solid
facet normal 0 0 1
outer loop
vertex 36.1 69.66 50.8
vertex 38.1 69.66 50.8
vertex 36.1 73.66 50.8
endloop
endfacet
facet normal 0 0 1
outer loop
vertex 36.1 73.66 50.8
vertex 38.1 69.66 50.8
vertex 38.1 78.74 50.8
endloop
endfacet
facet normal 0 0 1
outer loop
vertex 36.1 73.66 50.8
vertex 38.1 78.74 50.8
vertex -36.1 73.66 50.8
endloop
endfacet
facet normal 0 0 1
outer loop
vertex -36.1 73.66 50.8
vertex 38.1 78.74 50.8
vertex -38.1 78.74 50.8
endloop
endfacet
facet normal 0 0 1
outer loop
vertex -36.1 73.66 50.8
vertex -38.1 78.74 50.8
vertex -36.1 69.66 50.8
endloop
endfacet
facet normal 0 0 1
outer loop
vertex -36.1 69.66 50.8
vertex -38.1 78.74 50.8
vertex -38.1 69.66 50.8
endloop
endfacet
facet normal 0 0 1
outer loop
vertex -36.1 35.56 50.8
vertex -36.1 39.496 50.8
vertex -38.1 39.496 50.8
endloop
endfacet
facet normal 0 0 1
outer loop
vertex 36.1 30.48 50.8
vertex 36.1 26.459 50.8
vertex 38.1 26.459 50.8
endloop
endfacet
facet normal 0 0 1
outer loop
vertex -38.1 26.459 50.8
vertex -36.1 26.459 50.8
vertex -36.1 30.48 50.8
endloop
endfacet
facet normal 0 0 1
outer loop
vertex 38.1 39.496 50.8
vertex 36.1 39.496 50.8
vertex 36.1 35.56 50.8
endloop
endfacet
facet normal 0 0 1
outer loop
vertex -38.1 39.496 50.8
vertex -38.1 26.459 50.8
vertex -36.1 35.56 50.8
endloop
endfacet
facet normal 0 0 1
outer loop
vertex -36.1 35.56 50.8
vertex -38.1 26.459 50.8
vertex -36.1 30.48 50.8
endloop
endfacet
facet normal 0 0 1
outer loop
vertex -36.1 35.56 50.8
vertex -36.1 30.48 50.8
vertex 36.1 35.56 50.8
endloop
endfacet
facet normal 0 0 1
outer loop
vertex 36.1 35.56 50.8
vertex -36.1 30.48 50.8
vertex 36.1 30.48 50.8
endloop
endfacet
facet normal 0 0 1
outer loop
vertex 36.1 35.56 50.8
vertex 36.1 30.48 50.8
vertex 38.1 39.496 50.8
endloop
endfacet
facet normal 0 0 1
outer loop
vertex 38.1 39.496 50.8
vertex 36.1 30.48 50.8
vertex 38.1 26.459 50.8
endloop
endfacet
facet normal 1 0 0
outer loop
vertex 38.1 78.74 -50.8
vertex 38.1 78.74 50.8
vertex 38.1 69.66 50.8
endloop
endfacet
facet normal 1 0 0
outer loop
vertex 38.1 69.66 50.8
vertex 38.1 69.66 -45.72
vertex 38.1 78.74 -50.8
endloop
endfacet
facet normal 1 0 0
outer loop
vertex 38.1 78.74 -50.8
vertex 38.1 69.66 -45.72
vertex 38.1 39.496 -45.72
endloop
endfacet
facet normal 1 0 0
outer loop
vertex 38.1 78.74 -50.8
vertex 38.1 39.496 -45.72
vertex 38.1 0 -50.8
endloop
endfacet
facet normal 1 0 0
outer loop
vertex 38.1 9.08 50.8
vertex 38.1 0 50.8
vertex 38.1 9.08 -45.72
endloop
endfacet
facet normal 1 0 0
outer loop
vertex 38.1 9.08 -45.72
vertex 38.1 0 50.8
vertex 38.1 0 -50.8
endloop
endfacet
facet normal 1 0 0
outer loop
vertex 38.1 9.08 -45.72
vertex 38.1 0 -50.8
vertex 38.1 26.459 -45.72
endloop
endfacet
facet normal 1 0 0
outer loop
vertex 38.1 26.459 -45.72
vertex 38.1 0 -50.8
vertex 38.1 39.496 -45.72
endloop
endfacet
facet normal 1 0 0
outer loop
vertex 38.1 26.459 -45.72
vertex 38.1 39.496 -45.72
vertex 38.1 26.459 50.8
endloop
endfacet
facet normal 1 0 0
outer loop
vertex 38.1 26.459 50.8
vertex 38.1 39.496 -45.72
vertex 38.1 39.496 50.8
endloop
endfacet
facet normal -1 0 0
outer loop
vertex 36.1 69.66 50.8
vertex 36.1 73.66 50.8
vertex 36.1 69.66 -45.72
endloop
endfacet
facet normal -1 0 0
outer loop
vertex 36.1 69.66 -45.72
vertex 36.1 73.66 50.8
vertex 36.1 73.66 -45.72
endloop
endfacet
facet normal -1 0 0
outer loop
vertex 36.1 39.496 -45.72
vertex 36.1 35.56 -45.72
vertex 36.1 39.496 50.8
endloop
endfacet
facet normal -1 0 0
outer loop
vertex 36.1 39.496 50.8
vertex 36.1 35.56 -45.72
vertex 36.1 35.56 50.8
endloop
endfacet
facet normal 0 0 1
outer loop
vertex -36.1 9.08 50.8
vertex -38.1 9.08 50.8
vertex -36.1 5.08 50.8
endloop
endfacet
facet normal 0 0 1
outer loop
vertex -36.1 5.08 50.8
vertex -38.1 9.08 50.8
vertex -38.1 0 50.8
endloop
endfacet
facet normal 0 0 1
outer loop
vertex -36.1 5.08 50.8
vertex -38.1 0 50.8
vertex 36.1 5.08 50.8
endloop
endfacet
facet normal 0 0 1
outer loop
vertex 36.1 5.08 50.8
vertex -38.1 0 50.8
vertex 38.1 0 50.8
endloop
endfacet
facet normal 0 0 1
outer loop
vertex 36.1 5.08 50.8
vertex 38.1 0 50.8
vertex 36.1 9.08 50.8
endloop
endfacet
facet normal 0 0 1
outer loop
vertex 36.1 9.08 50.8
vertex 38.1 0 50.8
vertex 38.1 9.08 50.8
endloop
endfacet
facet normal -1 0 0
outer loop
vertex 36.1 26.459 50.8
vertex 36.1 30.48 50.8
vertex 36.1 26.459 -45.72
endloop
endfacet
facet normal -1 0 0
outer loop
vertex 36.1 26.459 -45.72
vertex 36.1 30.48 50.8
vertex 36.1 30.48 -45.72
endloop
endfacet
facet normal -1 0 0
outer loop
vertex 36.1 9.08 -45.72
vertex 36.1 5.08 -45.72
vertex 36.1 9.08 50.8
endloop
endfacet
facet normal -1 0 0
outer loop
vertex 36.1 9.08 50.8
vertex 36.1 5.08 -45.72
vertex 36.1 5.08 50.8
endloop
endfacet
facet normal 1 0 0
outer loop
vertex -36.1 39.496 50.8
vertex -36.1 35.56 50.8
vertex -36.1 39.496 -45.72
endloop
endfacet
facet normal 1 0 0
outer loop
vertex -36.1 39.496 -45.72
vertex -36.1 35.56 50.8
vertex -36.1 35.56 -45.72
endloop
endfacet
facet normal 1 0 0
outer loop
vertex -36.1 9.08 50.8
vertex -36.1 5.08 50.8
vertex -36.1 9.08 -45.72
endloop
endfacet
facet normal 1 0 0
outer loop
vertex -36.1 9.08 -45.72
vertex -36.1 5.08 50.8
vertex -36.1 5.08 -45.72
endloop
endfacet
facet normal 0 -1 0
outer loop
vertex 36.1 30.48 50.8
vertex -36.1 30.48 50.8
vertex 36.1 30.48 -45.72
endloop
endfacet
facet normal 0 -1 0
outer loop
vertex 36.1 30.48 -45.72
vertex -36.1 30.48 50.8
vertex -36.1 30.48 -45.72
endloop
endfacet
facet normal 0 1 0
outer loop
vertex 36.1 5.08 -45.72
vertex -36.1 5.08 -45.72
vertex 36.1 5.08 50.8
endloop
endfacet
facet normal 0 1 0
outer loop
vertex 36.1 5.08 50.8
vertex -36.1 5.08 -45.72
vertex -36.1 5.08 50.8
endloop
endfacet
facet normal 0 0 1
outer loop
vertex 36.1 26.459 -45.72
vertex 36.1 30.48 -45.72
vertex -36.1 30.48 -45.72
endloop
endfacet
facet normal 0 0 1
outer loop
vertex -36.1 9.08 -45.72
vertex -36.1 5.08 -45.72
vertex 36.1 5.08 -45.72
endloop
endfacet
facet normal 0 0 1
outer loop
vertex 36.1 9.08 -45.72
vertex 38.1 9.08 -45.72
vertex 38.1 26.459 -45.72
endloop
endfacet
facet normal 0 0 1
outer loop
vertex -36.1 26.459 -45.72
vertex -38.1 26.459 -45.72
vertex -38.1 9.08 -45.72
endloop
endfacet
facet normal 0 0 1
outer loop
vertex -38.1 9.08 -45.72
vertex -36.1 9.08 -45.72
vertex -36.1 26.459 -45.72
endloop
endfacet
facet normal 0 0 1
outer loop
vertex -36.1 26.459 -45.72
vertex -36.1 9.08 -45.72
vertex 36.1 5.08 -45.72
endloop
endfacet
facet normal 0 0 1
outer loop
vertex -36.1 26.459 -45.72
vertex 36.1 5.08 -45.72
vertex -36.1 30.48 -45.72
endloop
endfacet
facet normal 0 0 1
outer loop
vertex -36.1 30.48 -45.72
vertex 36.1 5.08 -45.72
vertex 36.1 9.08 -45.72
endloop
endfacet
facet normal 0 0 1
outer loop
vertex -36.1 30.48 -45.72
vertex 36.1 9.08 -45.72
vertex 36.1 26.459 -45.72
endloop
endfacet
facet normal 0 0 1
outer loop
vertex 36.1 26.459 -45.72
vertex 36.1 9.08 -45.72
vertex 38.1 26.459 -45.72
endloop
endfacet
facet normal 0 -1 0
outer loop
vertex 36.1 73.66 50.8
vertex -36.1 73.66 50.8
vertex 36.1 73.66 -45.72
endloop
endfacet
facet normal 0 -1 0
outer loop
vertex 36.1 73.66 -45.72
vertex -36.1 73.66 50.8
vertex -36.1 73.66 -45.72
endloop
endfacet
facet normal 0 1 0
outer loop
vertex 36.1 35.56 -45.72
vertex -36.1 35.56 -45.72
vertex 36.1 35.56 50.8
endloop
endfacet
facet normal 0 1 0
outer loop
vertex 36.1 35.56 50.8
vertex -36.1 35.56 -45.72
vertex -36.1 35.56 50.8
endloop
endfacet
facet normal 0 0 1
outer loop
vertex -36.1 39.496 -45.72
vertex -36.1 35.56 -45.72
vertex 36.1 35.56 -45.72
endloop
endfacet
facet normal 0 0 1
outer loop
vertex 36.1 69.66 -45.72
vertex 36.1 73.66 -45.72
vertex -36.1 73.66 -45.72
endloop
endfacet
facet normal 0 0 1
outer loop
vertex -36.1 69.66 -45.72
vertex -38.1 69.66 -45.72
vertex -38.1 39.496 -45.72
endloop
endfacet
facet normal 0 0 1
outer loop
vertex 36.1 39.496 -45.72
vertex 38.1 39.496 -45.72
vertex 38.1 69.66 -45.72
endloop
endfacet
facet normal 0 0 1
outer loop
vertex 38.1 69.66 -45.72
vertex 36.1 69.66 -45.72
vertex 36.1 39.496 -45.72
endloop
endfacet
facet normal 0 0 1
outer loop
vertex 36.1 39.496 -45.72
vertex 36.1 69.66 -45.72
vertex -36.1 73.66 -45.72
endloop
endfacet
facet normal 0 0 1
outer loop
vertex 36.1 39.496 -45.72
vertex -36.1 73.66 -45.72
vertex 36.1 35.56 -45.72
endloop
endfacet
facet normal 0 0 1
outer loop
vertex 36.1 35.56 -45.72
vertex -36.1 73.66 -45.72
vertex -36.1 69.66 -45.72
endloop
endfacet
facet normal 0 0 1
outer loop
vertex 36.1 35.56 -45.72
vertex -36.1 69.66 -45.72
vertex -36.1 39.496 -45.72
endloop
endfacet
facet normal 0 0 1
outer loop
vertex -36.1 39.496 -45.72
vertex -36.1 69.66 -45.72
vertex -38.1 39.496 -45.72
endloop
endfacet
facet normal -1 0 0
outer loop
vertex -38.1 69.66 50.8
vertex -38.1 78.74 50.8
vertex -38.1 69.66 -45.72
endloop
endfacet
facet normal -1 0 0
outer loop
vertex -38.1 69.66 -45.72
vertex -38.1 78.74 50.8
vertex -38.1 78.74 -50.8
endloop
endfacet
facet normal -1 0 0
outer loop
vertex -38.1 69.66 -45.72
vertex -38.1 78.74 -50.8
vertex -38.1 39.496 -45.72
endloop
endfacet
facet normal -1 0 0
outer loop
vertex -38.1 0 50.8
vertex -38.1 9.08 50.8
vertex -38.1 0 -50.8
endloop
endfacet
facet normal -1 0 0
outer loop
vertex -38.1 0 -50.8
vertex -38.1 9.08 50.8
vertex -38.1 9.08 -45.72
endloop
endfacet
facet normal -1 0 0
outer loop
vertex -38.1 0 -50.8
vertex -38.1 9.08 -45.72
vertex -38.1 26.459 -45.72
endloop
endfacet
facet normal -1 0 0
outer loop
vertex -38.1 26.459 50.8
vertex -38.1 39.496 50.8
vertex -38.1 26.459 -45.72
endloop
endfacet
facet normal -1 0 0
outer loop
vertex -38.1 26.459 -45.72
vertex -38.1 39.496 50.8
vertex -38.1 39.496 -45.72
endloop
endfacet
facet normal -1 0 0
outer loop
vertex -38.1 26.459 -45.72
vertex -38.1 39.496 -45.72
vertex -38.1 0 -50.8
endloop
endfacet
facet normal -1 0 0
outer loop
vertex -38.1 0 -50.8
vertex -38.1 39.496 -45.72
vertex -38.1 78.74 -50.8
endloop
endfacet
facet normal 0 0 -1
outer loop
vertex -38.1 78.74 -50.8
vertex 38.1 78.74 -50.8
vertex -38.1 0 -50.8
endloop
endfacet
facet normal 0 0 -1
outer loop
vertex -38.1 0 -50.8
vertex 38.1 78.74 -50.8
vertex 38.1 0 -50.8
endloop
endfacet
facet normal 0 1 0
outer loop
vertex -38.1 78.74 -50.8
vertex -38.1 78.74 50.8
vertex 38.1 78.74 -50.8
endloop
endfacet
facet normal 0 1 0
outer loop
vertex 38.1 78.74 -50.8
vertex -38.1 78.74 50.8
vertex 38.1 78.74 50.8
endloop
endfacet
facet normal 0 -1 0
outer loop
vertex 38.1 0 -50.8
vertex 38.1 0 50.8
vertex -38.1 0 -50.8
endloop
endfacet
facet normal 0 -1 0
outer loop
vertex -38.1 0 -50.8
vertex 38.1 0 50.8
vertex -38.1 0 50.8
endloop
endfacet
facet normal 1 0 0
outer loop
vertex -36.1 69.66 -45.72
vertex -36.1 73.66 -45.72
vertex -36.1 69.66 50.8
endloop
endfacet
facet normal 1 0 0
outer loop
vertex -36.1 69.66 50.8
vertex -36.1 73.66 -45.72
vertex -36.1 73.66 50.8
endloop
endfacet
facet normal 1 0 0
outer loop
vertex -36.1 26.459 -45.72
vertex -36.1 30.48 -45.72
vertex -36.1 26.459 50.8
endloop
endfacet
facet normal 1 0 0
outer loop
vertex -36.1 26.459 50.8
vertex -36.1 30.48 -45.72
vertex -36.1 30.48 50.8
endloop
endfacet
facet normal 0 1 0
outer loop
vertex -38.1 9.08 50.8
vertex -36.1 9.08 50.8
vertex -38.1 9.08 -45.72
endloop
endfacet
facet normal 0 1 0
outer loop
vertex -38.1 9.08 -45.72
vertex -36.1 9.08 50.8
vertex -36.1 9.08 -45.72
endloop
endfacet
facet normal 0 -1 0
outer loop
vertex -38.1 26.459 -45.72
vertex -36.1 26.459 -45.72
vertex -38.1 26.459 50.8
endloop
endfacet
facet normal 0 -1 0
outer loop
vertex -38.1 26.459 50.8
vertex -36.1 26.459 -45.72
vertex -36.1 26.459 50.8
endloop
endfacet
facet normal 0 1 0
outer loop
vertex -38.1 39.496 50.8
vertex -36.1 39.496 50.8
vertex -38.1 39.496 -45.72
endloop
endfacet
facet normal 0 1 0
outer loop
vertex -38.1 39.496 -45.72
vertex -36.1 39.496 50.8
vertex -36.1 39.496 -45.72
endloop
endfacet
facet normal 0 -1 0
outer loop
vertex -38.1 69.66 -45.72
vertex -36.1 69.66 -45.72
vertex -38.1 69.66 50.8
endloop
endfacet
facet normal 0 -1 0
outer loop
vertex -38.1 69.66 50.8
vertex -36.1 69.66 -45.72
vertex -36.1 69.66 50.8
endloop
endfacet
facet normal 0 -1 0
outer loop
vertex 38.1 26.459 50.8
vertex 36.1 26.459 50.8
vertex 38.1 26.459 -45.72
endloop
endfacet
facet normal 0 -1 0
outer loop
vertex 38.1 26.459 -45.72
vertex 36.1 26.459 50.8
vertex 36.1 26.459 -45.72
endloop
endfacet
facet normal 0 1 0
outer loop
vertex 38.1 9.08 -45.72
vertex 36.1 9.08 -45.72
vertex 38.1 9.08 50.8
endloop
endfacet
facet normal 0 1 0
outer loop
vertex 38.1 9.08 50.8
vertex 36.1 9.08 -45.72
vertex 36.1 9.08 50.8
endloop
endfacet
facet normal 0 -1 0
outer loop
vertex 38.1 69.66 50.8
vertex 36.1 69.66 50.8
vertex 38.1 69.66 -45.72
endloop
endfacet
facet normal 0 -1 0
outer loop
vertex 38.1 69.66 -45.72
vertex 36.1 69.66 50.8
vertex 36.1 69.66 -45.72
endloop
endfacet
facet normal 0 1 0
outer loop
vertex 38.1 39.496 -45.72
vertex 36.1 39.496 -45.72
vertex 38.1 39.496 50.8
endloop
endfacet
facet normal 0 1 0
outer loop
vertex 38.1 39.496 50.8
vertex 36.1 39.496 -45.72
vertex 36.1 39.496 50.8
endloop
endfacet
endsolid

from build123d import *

# Parameters (mm, degrees)
CROQUIS1_W              = 76.2
CROQUIS1_H              = 101.6
SALIENTE_EXTRUIR1_DEPTH = 78.74
CROQUIS2_W              = 76.2
CROQUIS2_H              = 25.4
CORTAR_EXTRUIR1_DEPTH   = 96.52
CROQUIS3_W              = 76.2
CROQUIS3_H              = 38.1
CORTAR_EXTRUIR2_DEPTH   = 96.52
CROQUIS4_W              = 2
CROQUIS4_H              = 96.52
SALIENTE_EXTRUIR3_DEPTH = 73.66
CROQUIS6_W              = 96.52
CROQUIS6_H              = 17.379424015
CORTAR_EXTRUIR4_DEPTH   = 4
CORTAR_EXTRUIR5_DEPTH   = 4


with BuildPart() as part:
    # Croquis1 → Saliente-Extruir1 (new body)
    with BuildSketch(Plane(origin=(0, 0, 0), x_dir=(1, 0, 0), z_dir=(0, 1, 0))):
        Rectangle(CROQUIS1_W, CROQUIS1_H)
    extrude(amount=SALIENTE_EXTRUIR1_DEPTH)

    # Croquis2 → Cortar-Extruir1 (cut)
    with BuildSketch(Plane.XY.offset(50.8)):
        with Locations((0, 17.78)):
            Rectangle(CROQUIS2_W, CROQUIS2_H)
    extrude(amount=-CORTAR_EXTRUIR1_DEPTH, mode=Mode.SUBTRACT)

    # Croquis3 → Cortar-Extruir2 (cut)
    with BuildSketch(Plane.XY.offset(50.8)):
        with Locations((0, 54.61)):
            Rectangle(CROQUIS3_W, CROQUIS3_H)
    extrude(amount=-CORTAR_EXTRUIR2_DEPTH, mode=Mode.SUBTRACT)

    # Croquis4 → Saliente-Extruir3 (add, through all)
    with BuildSketch(Plane(origin=(0, 5.08, 0), x_dir=(1, 0, 0), z_dir=(0, 1, 0))):
        with Locations((-37.1, -2.54)):
            Rectangle(CROQUIS4_W, CROQUIS4_H)
    saliente_extruir3 = extrude(amount=SALIENTE_EXTRUIR3_DEPTH)

    # Croquis6 → Cortar-Extruir4 (cut)
    with BuildSketch(Plane.ZY.offset(38.1)):
        with Locations((2.54, 17.769712008)):
            Rectangle(CROQUIS6_W, CROQUIS6_H)
    cortar_extruir4 = extrude(amount=-CORTAR_EXTRUIR4_DEPTH, mode=Mode.SUBTRACT)

    # Croquis7 → Cortar-Extruir5 (cut)
    with BuildSketch(Plane.ZY.offset(38.1)):
        Polygon((50.8, 39.4956929), (-44.763376085, 39.4956929), (-45.72, 39.4956929), (-45.72, 69.66), (-44.763376085, 69.66), (50.8, 69.66), align=None)
    cortar_extruir5 = extrude(amount=-CORTAR_EXTRUIR5_DEPTH, mode=Mode.SUBTRACT)

    # Simetría1: Saliente-Extruir3, Cortar-Extruir4, Cortar-Extruir5 across plane
    add(saliente_extruir3.mirror(Plane(origin=(0, 0, 0), x_dir=(0, 0, 1), z_dir=(1, 0, 0))))
    add(cortar_extruir4.mirror(Plane(origin=(0, 0, 0), x_dir=(0, 0, 1), z_dir=(1, 0, 0))), mode=Mode.SUBTRACT)
    add(cortar_extruir5.mirror(Plane(origin=(0, 0, 0), x_dir=(0, 0, 1), z_dir=(1, 0, 0))), mode=Mode.SUBTRACT)


solid = part.part
